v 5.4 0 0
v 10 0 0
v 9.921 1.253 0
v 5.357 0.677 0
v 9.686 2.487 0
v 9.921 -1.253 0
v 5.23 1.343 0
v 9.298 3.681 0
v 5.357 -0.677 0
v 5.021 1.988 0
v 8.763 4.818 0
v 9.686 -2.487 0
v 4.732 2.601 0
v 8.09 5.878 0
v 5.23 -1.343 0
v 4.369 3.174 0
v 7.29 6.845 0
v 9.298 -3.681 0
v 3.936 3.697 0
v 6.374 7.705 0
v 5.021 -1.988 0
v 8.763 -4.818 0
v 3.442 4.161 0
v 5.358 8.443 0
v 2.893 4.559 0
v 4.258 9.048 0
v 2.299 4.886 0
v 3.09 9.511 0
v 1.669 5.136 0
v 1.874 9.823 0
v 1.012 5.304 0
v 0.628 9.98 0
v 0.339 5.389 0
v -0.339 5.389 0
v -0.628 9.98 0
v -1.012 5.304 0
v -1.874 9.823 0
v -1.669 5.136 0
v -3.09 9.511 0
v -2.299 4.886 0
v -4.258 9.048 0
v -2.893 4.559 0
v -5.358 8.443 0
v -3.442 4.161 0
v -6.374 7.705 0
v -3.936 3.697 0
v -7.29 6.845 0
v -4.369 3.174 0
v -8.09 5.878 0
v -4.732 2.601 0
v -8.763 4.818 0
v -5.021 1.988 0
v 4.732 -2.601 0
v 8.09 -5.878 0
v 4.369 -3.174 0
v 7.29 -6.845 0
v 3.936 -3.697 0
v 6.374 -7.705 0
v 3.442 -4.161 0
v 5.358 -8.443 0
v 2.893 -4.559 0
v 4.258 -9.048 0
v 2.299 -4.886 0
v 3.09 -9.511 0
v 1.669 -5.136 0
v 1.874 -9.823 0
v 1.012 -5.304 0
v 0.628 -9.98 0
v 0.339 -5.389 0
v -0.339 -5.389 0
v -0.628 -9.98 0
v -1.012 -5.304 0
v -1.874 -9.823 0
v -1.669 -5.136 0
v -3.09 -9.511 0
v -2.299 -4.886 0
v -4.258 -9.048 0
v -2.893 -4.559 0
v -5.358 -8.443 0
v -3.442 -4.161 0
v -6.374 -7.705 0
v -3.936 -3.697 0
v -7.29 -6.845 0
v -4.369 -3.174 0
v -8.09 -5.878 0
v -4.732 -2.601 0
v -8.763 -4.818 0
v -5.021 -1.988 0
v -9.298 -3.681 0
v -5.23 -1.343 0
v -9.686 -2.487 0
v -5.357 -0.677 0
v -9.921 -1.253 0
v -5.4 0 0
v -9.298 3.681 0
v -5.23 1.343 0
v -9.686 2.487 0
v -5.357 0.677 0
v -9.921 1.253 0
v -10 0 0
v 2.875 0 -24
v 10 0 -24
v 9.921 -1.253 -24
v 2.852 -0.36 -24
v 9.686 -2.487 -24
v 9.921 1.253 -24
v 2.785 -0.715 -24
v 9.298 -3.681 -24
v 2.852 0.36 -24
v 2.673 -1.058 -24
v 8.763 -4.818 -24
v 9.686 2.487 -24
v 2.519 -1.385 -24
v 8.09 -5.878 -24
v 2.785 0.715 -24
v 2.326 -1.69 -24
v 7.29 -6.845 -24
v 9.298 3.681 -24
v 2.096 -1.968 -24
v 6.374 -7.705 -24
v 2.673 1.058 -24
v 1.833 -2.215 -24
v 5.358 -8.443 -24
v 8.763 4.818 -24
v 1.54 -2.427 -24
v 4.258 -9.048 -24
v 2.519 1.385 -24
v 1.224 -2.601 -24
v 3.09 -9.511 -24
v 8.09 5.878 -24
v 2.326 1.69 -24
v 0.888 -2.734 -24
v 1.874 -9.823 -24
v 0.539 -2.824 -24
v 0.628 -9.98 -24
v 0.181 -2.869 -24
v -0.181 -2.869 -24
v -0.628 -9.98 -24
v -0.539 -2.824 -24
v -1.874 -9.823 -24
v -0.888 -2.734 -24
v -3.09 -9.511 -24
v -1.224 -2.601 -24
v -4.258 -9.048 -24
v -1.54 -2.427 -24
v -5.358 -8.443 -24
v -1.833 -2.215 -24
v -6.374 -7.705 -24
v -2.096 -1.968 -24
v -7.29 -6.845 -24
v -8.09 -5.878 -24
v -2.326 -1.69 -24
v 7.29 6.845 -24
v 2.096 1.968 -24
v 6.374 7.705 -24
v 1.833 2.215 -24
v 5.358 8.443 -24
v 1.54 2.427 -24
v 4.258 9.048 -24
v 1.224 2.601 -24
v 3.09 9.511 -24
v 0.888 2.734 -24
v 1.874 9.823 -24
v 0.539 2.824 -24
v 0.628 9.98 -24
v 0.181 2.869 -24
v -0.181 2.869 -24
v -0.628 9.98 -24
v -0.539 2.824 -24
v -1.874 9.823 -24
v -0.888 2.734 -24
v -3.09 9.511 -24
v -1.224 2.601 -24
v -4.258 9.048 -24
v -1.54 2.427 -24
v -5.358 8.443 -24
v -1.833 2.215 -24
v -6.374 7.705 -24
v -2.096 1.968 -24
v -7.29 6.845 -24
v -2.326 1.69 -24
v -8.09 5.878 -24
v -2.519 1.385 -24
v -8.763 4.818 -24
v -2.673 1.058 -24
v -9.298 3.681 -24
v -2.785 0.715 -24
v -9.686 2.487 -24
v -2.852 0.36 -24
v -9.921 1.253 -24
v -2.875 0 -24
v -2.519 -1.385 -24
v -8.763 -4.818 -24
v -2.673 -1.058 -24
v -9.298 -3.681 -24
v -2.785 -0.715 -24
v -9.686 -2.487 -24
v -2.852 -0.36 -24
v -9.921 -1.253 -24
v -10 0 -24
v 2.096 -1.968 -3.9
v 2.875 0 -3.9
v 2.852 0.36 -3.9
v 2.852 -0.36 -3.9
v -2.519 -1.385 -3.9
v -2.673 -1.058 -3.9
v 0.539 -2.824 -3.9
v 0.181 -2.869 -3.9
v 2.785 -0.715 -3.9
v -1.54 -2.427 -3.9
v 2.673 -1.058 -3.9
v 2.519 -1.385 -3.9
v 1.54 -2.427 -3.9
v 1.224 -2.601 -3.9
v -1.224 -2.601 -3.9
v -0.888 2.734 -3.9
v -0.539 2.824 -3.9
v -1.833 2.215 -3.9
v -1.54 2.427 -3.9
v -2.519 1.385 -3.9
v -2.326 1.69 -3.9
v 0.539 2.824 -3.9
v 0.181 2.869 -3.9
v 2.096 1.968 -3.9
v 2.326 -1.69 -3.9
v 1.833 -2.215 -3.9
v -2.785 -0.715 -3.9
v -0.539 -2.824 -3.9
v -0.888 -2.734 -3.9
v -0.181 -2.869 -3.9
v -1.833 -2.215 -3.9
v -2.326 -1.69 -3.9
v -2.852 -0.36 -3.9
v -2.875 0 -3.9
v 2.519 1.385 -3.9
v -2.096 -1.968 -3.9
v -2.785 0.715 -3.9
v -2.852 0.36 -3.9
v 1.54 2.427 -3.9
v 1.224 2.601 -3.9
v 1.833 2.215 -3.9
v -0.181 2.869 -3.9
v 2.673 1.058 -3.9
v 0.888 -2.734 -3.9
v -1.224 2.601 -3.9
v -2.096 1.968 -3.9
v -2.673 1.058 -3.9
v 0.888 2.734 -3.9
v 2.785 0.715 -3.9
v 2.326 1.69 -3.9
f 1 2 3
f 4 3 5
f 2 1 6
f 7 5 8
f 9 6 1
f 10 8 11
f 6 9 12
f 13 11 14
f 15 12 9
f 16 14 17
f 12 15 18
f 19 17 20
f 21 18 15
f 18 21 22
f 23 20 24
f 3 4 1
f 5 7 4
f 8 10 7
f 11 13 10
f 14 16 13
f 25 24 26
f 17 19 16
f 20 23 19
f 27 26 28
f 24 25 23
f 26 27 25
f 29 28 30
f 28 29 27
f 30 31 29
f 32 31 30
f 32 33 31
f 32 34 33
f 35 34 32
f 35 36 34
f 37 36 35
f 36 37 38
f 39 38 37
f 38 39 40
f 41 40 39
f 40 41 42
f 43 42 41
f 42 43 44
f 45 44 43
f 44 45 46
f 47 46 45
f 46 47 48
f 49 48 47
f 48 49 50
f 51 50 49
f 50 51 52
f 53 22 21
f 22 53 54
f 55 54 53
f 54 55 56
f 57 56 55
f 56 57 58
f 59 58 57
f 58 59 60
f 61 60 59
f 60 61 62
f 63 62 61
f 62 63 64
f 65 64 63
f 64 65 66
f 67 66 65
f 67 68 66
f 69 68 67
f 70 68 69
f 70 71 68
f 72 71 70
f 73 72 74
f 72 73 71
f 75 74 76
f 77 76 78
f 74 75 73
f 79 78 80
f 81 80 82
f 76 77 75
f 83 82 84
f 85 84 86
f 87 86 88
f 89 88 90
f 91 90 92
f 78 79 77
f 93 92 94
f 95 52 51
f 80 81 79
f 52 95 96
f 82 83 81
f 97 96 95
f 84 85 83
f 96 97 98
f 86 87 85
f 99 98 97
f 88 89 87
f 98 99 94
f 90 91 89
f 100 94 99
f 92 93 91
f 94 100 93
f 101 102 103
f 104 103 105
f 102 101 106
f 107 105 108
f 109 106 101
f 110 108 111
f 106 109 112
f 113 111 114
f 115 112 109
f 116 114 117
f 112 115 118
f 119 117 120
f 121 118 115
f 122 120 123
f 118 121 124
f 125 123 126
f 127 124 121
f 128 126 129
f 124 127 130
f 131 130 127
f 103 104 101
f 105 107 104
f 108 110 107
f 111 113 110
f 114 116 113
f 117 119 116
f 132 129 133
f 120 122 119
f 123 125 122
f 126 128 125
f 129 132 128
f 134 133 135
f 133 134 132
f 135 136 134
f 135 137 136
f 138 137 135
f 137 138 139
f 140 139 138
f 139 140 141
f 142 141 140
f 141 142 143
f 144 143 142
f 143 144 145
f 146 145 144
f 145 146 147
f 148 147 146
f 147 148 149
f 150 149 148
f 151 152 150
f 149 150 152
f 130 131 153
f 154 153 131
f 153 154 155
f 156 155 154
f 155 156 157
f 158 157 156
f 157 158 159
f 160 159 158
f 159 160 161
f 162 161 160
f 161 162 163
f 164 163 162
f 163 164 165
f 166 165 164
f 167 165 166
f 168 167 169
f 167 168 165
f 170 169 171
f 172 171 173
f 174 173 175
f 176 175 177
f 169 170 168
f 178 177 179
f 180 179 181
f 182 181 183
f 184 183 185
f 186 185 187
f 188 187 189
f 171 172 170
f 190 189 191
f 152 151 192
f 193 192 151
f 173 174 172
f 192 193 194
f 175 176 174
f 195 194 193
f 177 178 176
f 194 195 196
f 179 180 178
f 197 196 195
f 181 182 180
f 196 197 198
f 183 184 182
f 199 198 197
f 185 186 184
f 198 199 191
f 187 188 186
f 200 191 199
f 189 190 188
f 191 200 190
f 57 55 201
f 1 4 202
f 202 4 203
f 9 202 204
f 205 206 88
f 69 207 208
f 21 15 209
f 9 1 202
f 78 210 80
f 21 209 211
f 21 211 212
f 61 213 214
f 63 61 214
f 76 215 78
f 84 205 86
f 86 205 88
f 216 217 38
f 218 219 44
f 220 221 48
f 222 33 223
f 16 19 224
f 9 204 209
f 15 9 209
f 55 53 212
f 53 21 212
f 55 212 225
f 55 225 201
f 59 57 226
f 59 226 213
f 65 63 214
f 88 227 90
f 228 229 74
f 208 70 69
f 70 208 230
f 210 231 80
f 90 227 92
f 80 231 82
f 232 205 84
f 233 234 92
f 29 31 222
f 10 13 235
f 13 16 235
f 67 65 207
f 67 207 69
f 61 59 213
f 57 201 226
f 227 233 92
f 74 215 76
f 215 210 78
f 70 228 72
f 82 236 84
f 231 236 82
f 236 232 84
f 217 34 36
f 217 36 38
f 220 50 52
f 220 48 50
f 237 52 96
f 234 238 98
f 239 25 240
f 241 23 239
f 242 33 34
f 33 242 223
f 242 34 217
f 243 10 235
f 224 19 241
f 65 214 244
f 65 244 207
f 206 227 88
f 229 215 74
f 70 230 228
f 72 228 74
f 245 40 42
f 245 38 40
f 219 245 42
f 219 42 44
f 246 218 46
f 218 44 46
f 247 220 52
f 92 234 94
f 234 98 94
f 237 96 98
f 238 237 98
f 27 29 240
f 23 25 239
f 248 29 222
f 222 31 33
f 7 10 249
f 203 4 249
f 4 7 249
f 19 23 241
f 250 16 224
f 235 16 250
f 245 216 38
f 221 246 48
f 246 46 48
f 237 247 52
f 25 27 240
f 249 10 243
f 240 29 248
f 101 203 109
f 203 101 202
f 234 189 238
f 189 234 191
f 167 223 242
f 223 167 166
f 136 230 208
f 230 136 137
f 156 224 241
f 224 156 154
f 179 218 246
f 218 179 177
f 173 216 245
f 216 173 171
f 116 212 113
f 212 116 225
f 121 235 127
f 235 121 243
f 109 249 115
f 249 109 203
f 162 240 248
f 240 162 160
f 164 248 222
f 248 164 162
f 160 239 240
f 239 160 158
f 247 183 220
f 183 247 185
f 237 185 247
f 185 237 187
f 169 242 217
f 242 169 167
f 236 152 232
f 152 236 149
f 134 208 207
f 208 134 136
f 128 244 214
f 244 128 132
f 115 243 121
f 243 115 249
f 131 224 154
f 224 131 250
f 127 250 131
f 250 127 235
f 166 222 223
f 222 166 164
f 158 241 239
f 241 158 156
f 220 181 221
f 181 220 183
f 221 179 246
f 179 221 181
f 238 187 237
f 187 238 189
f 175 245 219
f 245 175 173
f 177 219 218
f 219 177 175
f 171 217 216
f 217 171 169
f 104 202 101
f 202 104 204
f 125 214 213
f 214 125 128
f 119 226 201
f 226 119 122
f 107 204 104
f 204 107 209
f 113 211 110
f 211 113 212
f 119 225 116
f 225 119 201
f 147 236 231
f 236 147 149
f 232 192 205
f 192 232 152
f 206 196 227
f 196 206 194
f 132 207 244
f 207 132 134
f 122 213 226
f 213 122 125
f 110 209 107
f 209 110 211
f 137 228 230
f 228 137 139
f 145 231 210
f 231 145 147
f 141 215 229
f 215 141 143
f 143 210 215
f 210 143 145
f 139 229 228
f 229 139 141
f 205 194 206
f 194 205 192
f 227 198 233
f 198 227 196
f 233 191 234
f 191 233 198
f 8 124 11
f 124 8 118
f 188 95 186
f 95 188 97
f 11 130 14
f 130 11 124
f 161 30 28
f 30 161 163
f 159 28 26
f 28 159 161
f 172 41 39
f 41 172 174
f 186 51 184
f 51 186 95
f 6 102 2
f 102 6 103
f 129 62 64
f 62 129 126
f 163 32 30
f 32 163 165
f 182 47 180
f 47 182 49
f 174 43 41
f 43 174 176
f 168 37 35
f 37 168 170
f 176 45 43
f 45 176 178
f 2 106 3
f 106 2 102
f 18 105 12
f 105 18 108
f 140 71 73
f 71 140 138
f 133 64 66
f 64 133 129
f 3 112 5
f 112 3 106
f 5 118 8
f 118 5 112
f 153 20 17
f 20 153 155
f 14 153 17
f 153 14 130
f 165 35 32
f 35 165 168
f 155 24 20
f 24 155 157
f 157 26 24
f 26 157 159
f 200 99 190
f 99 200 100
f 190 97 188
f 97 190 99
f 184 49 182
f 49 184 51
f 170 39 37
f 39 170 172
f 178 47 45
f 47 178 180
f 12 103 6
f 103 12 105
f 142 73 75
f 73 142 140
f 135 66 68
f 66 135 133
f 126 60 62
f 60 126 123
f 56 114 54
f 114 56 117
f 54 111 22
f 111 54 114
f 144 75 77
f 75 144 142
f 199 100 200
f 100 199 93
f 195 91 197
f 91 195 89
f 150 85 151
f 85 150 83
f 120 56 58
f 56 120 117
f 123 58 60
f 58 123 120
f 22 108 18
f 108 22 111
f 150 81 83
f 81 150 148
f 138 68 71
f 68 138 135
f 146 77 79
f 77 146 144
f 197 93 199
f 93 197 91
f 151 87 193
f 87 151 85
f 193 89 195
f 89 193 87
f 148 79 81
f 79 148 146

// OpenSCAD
$fn = 50;


difference() {
	union() {
		translate(v = [0, 0, -24.0000000000]) {
			cylinder(h = 24, r = 10.0000000000);
		}
		cylinder(h = 0, r = 19.0000000000);
	}
	union() {
		translate(v = [0, 0, 0]) {
			rotate(a = [0, 0, 0]) {
				difference() {
					union() {
						#translate(v = [0, 0, -24.0000000000]) {
							cylinder(h = 24, r = 2.6000000000);
						}
						#translate(v = [0, 0, -3.9000000000]) {
							cylinder(h = 3.9000000000, r1 = 2.8750000000, r2 = 5.4000000000);
						}
						#translate(v = [0, 0, -24.0000000000]) {
							cylinder(h = 24, r = 2.8750000000);
						}
						#translate(v = [0, 0, -24.0000000000]) {
							cylinder(h = 24, r = 2.6000000000);
						}
					}
					union();
				}
			}
		}
	}
}
